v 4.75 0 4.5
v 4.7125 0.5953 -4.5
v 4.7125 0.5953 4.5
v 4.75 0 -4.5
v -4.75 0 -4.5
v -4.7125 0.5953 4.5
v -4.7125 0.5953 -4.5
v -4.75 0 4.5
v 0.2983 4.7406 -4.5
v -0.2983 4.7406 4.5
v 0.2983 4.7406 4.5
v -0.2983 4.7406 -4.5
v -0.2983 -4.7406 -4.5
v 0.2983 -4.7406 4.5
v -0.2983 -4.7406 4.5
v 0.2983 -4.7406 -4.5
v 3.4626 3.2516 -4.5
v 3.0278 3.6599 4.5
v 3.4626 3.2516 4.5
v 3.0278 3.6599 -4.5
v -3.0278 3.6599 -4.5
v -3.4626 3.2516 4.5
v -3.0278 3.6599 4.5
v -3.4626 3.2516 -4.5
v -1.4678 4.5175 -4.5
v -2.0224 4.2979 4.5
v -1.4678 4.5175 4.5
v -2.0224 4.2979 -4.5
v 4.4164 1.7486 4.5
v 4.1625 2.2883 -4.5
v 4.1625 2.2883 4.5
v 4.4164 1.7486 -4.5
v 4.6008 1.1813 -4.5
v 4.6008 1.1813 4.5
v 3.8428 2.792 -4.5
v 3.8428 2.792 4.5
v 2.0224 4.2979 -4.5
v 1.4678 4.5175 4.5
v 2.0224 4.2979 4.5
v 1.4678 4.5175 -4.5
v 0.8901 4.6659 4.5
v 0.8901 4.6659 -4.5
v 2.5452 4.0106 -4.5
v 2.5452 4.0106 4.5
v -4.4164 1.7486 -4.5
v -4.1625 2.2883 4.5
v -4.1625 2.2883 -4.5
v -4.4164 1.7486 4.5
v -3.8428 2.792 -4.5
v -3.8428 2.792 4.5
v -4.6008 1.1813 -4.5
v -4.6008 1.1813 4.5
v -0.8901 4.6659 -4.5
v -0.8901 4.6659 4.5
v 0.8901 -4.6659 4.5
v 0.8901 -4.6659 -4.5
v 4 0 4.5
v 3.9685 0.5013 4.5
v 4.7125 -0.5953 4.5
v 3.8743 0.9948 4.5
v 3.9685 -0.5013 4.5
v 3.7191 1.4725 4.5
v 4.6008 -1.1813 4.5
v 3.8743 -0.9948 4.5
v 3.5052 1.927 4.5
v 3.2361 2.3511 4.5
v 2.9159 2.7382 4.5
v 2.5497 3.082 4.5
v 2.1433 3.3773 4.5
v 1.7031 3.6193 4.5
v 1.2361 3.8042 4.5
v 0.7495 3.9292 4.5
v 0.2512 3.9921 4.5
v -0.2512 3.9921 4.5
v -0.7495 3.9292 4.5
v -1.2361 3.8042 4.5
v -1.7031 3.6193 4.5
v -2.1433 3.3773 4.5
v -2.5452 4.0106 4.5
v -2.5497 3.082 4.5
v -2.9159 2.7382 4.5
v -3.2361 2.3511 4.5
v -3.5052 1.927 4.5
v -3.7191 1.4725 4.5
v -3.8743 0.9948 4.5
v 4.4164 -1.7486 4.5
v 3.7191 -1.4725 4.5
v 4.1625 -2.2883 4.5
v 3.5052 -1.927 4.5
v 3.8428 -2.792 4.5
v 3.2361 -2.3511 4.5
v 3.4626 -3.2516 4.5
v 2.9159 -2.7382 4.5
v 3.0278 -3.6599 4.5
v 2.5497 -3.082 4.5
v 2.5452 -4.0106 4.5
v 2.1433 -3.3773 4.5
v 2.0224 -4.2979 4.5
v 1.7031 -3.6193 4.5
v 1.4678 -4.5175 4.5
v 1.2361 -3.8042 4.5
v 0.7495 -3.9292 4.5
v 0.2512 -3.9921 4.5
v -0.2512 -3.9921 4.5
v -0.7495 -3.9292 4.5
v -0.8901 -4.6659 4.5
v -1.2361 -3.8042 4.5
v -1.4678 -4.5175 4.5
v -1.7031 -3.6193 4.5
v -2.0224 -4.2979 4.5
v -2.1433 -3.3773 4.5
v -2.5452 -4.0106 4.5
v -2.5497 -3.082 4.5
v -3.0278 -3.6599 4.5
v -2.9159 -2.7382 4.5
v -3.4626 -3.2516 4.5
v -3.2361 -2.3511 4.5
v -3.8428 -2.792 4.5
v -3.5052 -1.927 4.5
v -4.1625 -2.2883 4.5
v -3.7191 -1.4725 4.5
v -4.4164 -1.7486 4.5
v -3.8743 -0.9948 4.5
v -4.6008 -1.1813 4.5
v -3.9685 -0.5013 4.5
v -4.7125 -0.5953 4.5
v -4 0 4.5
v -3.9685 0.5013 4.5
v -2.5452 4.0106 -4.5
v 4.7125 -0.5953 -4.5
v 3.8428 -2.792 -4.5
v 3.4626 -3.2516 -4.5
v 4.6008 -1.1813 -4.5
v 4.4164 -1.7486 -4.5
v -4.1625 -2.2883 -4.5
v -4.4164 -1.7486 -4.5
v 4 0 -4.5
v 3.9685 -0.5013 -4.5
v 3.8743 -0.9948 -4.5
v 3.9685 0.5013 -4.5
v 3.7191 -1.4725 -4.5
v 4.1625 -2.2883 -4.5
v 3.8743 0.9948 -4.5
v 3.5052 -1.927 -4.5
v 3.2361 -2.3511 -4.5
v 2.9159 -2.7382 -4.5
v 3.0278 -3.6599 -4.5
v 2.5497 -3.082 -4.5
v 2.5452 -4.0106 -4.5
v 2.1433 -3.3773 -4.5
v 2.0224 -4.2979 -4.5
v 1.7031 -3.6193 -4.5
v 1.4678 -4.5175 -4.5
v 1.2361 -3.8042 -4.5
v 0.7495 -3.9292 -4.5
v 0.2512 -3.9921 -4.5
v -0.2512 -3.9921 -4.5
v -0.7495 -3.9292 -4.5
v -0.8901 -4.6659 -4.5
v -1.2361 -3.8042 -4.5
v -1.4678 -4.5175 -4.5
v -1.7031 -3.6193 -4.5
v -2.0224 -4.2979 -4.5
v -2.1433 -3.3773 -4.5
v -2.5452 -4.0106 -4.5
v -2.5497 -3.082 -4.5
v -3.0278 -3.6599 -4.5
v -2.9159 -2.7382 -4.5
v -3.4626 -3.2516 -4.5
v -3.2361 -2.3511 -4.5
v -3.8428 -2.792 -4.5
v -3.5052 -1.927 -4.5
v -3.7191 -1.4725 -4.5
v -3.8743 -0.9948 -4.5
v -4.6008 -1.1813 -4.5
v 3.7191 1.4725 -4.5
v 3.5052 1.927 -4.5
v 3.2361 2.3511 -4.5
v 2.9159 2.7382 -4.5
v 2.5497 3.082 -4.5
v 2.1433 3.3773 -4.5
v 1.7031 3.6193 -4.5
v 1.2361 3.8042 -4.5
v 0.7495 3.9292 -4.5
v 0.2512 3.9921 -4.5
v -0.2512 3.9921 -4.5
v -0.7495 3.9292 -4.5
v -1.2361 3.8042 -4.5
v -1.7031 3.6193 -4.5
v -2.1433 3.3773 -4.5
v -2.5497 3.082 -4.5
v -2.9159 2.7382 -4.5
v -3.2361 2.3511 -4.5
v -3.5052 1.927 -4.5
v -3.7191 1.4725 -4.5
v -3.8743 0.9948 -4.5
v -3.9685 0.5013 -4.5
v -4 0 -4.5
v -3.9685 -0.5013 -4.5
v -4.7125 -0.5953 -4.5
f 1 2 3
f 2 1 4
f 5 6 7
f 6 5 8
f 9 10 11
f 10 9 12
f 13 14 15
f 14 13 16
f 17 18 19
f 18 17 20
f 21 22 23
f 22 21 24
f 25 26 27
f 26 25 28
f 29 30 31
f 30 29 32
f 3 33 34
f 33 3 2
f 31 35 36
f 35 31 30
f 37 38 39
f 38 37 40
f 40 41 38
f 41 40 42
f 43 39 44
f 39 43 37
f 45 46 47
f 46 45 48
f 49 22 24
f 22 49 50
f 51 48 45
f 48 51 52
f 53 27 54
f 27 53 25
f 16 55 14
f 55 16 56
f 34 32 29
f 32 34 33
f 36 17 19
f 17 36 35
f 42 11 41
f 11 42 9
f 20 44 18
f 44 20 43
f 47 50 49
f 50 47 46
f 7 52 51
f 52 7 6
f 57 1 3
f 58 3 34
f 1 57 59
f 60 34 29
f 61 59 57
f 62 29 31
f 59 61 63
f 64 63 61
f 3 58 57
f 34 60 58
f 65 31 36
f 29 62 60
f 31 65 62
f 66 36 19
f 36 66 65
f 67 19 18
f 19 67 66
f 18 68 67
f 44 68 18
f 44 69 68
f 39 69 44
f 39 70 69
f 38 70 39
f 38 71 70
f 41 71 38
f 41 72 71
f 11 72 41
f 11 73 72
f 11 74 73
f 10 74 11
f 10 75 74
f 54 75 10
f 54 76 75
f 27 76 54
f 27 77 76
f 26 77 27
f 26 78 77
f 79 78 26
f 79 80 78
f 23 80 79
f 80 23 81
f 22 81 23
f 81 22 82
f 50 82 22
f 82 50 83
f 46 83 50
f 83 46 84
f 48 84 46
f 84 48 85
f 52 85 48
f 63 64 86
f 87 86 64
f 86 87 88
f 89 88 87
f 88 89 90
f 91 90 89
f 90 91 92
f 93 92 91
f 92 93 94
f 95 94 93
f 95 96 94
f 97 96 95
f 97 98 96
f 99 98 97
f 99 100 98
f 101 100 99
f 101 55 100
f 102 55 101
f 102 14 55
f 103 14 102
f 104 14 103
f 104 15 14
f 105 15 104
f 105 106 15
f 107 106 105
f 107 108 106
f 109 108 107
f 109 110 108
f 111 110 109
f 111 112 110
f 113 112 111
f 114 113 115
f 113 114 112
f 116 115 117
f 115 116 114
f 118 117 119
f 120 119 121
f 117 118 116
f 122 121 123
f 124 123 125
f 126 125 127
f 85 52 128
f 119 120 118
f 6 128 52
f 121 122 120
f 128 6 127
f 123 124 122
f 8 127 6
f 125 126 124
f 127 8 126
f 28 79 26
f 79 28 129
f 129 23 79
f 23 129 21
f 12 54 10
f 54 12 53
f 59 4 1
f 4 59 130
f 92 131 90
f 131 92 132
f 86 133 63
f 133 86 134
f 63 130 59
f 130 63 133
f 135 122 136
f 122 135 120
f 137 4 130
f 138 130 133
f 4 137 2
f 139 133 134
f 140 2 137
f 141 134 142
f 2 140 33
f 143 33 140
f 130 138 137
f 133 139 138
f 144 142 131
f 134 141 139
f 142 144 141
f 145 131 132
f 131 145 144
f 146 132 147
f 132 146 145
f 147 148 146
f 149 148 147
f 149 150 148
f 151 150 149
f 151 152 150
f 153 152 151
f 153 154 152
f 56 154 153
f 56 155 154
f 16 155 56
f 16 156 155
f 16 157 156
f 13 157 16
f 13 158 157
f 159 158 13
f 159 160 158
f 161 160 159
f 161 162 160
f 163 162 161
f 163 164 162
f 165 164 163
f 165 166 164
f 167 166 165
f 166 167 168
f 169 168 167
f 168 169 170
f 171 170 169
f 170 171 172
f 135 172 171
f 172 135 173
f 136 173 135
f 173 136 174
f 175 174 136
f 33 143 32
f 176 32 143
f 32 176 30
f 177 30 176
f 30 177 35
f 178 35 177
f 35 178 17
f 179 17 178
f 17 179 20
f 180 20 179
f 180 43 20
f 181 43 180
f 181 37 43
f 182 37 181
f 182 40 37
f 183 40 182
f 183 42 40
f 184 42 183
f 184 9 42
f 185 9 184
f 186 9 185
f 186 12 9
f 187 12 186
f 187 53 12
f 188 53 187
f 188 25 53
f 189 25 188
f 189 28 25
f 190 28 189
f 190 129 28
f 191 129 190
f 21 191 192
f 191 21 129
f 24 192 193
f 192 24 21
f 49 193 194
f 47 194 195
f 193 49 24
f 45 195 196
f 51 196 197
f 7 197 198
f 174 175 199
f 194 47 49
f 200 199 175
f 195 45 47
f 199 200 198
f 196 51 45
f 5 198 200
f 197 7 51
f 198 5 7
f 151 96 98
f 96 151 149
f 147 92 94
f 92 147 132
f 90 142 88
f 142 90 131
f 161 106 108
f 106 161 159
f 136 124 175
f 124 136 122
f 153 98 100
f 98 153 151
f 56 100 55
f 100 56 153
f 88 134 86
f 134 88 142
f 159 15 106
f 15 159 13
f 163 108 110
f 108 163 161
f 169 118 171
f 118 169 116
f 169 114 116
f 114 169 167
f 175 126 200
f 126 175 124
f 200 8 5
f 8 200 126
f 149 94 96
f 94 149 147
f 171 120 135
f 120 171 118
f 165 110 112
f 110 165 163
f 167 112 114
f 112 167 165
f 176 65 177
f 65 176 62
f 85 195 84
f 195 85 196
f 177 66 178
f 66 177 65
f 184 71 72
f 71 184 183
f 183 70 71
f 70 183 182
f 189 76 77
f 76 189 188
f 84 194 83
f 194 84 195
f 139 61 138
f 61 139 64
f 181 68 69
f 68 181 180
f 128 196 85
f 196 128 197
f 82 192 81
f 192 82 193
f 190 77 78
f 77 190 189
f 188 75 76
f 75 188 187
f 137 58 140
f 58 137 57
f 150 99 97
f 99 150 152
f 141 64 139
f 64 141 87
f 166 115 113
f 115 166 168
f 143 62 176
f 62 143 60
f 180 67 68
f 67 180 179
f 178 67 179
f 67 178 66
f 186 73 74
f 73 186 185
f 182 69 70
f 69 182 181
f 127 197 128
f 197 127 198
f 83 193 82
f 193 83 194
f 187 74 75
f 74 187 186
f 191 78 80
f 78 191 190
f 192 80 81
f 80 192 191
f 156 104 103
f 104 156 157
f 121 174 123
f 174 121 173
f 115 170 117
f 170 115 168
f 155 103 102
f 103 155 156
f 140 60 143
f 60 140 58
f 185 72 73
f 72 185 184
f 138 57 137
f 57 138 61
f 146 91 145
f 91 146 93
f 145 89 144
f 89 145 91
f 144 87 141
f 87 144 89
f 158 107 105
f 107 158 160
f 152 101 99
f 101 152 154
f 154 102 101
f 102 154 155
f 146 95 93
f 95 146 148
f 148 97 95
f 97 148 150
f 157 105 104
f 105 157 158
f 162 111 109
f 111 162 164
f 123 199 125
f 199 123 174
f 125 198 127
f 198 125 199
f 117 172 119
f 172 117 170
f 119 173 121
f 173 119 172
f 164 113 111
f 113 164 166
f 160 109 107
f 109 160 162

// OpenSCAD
$fn = 50;


difference() {
	union() {
		translate(v = [0, 0, -4.5000000000]) {
			cylinder(h = 9, r = 4.7500000000);
		}
	}
	union() {
		translate(v = [0, 0, -100.0000000000]) {
			cylinder(h = 200, r = 4.0000000000);
		}
	}
}
